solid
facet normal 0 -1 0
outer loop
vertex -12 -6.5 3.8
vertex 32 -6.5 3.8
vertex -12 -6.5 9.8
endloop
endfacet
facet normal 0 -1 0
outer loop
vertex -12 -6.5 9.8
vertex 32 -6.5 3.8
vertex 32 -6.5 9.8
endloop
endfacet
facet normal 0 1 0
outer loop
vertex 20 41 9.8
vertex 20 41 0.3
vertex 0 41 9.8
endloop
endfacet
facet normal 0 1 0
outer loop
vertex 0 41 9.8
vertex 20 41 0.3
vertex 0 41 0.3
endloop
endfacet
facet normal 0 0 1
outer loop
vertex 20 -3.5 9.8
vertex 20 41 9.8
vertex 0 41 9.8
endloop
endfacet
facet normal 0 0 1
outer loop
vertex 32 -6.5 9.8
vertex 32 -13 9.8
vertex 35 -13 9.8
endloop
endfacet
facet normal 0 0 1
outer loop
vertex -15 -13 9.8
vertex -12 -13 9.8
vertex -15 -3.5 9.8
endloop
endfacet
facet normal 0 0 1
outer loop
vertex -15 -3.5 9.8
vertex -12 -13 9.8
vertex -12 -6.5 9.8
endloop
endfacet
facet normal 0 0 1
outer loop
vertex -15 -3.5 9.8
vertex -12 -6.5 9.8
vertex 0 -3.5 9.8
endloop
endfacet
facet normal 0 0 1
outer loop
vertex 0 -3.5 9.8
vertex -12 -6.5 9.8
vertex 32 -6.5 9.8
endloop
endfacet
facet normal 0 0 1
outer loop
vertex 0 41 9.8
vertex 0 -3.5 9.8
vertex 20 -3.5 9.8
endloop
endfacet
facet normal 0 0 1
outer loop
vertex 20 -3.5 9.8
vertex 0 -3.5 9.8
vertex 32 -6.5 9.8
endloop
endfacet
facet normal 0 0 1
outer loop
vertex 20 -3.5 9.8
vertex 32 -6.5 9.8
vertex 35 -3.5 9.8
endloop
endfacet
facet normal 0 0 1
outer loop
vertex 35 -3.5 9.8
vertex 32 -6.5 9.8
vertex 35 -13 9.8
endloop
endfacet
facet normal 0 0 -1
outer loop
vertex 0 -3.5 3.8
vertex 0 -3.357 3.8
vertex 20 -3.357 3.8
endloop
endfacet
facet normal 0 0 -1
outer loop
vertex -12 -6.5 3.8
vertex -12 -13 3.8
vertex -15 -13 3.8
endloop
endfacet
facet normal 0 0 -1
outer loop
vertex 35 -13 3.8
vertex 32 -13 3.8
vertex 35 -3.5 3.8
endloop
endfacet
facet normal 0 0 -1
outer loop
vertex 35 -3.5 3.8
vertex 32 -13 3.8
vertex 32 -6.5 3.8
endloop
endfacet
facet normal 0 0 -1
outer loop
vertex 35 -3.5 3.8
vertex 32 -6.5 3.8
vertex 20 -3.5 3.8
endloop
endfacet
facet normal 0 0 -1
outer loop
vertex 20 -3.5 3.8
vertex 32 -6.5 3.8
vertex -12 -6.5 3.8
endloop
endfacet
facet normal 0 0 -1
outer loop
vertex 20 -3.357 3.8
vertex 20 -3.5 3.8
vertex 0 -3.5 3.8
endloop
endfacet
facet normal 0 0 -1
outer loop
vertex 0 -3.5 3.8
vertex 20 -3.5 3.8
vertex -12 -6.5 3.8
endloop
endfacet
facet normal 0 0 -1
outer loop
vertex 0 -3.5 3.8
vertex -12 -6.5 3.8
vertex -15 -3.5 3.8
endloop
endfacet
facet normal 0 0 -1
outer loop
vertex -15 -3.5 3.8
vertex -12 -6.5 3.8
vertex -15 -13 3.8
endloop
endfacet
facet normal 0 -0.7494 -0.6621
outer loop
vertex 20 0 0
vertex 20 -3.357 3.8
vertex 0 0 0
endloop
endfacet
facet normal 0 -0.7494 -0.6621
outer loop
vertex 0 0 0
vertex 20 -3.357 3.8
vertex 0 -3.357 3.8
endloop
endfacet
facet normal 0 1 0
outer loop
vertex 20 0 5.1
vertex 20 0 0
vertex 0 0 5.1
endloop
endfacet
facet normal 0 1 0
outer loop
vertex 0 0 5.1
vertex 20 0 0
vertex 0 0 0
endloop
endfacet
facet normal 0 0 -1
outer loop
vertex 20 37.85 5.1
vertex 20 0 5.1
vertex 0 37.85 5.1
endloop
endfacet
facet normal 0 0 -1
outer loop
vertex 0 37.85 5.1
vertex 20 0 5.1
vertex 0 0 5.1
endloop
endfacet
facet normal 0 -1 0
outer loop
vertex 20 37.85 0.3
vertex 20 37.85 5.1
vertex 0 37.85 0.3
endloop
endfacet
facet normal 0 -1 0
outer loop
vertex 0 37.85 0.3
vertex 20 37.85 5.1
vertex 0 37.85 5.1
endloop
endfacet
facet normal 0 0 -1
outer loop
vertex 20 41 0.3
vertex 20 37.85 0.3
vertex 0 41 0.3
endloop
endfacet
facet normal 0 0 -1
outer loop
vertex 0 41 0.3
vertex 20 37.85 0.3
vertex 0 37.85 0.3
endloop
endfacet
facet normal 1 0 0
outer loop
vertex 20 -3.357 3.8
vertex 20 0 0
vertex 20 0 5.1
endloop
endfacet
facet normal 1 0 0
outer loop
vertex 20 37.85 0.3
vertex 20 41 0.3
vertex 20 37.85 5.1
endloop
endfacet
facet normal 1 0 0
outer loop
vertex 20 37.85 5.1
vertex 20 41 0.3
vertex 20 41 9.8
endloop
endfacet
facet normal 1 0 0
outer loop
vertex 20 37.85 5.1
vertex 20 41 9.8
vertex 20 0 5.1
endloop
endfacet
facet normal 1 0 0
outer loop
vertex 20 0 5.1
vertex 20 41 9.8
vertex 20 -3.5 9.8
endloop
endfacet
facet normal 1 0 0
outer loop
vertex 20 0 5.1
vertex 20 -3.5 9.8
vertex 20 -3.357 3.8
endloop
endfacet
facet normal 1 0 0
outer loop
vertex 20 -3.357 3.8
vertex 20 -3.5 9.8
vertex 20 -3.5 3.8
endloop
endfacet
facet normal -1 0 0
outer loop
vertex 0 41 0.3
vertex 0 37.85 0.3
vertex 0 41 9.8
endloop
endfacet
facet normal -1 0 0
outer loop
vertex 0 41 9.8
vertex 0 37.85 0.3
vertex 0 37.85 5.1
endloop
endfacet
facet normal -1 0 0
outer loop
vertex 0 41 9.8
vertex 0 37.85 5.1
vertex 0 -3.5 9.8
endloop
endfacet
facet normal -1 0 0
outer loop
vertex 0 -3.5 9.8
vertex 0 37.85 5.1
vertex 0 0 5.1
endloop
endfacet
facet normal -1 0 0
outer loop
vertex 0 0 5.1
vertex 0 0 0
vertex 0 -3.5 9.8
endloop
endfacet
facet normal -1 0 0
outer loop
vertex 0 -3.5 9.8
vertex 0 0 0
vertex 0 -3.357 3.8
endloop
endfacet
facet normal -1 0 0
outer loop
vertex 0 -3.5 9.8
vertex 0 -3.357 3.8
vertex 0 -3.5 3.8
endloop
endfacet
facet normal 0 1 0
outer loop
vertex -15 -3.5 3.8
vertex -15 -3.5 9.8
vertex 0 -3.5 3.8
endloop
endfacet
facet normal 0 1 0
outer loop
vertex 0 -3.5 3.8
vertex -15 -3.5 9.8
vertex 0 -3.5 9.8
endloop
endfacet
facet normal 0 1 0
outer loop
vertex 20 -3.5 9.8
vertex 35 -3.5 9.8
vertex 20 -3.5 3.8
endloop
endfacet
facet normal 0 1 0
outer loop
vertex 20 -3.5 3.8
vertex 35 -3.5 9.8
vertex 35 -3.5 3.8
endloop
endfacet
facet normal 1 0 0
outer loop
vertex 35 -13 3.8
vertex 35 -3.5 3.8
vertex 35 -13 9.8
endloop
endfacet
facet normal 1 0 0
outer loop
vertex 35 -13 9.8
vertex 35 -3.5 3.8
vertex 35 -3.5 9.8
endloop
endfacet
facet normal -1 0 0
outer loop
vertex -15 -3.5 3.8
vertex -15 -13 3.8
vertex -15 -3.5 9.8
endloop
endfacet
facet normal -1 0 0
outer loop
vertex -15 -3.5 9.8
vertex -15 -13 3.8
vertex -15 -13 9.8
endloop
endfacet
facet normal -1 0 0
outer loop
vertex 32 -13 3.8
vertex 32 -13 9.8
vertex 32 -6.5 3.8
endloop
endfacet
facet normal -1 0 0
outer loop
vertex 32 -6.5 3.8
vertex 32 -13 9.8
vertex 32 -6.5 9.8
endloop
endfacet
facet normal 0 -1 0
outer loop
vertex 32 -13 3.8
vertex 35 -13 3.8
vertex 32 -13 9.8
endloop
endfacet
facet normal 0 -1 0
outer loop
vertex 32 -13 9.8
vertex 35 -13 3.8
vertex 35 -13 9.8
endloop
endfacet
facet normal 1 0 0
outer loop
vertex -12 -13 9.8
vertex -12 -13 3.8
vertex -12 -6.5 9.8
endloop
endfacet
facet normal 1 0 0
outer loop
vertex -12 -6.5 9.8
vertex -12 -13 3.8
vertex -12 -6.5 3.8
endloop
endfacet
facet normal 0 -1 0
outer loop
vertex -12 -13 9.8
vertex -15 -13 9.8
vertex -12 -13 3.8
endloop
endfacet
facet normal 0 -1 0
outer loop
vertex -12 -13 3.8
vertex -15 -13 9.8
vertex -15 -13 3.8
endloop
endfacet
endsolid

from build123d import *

# Parameters (mm, degrees)
BOSS_EXTRUDE1_DEPTH = 20
SKETCH2_W           = 30
SKETCH2_H           = 6
BOSS_EXTRUDE2_DEPTH = 3
SKETCH3_W           = 50
SKETCH3_H           = 3
BOSS_EXTRUDE3_DEPTH = 6
SKETCH4_W           = 3
SKETCH4_H           = 6
BOSS_EXTRUDE4_DEPTH = 6.5


with BuildPart() as part:
    # Sketch1 → Boss-Extrude1 (new body)
    with BuildSketch(Plane(origin=(0, 0, 0), x_dir=(0, 0, -1), z_dir=(1, 0, 0))):
        Polygon((-9.8, -6.5), (-3.8, -6.5), (-3.8, -3.357082066), (0, 0), (-5.1, 0), (-5.1, 37.85), (-0.3, 37.85), (-0.3, 41), (-9.8, 41), align=None)
    extrude(amount=BOSS_EXTRUDE1_DEPTH)

    # Sketch2 → Boss-Extrude2 (add)
    with BuildSketch(Plane.XZ.offset(6.5)):
        with Locations((10, 6.8)):
            Rectangle(SKETCH2_W, SKETCH2_H)
    extrude(amount=-BOSS_EXTRUDE2_DEPTH)

    # Sketch3 → Boss-Extrude3 (add)
    with BuildSketch(Plane(origin=(0, 0, 3.8), x_dir=(-1, 0, 0), z_dir=(0, 0, -1))):
        with Locations((-10, -5)):
            Rectangle(SKETCH3_W, SKETCH3_H)
    extrude(amount=-BOSS_EXTRUDE3_DEPTH)

    # Sketch4 → Boss-Extrude4 (add)
    with BuildSketch(Plane.XZ.offset(6.5)):
        with Locations((-13.5, 6.8)):
            Rectangle(SKETCH4_W, SKETCH4_H)
        with Locations((33.5, 6.8)):
            Rectangle(SKETCH4_W, SKETCH4_H)
    extrude(amount=BOSS_EXTRUDE4_DEPTH)


solid = part.part
